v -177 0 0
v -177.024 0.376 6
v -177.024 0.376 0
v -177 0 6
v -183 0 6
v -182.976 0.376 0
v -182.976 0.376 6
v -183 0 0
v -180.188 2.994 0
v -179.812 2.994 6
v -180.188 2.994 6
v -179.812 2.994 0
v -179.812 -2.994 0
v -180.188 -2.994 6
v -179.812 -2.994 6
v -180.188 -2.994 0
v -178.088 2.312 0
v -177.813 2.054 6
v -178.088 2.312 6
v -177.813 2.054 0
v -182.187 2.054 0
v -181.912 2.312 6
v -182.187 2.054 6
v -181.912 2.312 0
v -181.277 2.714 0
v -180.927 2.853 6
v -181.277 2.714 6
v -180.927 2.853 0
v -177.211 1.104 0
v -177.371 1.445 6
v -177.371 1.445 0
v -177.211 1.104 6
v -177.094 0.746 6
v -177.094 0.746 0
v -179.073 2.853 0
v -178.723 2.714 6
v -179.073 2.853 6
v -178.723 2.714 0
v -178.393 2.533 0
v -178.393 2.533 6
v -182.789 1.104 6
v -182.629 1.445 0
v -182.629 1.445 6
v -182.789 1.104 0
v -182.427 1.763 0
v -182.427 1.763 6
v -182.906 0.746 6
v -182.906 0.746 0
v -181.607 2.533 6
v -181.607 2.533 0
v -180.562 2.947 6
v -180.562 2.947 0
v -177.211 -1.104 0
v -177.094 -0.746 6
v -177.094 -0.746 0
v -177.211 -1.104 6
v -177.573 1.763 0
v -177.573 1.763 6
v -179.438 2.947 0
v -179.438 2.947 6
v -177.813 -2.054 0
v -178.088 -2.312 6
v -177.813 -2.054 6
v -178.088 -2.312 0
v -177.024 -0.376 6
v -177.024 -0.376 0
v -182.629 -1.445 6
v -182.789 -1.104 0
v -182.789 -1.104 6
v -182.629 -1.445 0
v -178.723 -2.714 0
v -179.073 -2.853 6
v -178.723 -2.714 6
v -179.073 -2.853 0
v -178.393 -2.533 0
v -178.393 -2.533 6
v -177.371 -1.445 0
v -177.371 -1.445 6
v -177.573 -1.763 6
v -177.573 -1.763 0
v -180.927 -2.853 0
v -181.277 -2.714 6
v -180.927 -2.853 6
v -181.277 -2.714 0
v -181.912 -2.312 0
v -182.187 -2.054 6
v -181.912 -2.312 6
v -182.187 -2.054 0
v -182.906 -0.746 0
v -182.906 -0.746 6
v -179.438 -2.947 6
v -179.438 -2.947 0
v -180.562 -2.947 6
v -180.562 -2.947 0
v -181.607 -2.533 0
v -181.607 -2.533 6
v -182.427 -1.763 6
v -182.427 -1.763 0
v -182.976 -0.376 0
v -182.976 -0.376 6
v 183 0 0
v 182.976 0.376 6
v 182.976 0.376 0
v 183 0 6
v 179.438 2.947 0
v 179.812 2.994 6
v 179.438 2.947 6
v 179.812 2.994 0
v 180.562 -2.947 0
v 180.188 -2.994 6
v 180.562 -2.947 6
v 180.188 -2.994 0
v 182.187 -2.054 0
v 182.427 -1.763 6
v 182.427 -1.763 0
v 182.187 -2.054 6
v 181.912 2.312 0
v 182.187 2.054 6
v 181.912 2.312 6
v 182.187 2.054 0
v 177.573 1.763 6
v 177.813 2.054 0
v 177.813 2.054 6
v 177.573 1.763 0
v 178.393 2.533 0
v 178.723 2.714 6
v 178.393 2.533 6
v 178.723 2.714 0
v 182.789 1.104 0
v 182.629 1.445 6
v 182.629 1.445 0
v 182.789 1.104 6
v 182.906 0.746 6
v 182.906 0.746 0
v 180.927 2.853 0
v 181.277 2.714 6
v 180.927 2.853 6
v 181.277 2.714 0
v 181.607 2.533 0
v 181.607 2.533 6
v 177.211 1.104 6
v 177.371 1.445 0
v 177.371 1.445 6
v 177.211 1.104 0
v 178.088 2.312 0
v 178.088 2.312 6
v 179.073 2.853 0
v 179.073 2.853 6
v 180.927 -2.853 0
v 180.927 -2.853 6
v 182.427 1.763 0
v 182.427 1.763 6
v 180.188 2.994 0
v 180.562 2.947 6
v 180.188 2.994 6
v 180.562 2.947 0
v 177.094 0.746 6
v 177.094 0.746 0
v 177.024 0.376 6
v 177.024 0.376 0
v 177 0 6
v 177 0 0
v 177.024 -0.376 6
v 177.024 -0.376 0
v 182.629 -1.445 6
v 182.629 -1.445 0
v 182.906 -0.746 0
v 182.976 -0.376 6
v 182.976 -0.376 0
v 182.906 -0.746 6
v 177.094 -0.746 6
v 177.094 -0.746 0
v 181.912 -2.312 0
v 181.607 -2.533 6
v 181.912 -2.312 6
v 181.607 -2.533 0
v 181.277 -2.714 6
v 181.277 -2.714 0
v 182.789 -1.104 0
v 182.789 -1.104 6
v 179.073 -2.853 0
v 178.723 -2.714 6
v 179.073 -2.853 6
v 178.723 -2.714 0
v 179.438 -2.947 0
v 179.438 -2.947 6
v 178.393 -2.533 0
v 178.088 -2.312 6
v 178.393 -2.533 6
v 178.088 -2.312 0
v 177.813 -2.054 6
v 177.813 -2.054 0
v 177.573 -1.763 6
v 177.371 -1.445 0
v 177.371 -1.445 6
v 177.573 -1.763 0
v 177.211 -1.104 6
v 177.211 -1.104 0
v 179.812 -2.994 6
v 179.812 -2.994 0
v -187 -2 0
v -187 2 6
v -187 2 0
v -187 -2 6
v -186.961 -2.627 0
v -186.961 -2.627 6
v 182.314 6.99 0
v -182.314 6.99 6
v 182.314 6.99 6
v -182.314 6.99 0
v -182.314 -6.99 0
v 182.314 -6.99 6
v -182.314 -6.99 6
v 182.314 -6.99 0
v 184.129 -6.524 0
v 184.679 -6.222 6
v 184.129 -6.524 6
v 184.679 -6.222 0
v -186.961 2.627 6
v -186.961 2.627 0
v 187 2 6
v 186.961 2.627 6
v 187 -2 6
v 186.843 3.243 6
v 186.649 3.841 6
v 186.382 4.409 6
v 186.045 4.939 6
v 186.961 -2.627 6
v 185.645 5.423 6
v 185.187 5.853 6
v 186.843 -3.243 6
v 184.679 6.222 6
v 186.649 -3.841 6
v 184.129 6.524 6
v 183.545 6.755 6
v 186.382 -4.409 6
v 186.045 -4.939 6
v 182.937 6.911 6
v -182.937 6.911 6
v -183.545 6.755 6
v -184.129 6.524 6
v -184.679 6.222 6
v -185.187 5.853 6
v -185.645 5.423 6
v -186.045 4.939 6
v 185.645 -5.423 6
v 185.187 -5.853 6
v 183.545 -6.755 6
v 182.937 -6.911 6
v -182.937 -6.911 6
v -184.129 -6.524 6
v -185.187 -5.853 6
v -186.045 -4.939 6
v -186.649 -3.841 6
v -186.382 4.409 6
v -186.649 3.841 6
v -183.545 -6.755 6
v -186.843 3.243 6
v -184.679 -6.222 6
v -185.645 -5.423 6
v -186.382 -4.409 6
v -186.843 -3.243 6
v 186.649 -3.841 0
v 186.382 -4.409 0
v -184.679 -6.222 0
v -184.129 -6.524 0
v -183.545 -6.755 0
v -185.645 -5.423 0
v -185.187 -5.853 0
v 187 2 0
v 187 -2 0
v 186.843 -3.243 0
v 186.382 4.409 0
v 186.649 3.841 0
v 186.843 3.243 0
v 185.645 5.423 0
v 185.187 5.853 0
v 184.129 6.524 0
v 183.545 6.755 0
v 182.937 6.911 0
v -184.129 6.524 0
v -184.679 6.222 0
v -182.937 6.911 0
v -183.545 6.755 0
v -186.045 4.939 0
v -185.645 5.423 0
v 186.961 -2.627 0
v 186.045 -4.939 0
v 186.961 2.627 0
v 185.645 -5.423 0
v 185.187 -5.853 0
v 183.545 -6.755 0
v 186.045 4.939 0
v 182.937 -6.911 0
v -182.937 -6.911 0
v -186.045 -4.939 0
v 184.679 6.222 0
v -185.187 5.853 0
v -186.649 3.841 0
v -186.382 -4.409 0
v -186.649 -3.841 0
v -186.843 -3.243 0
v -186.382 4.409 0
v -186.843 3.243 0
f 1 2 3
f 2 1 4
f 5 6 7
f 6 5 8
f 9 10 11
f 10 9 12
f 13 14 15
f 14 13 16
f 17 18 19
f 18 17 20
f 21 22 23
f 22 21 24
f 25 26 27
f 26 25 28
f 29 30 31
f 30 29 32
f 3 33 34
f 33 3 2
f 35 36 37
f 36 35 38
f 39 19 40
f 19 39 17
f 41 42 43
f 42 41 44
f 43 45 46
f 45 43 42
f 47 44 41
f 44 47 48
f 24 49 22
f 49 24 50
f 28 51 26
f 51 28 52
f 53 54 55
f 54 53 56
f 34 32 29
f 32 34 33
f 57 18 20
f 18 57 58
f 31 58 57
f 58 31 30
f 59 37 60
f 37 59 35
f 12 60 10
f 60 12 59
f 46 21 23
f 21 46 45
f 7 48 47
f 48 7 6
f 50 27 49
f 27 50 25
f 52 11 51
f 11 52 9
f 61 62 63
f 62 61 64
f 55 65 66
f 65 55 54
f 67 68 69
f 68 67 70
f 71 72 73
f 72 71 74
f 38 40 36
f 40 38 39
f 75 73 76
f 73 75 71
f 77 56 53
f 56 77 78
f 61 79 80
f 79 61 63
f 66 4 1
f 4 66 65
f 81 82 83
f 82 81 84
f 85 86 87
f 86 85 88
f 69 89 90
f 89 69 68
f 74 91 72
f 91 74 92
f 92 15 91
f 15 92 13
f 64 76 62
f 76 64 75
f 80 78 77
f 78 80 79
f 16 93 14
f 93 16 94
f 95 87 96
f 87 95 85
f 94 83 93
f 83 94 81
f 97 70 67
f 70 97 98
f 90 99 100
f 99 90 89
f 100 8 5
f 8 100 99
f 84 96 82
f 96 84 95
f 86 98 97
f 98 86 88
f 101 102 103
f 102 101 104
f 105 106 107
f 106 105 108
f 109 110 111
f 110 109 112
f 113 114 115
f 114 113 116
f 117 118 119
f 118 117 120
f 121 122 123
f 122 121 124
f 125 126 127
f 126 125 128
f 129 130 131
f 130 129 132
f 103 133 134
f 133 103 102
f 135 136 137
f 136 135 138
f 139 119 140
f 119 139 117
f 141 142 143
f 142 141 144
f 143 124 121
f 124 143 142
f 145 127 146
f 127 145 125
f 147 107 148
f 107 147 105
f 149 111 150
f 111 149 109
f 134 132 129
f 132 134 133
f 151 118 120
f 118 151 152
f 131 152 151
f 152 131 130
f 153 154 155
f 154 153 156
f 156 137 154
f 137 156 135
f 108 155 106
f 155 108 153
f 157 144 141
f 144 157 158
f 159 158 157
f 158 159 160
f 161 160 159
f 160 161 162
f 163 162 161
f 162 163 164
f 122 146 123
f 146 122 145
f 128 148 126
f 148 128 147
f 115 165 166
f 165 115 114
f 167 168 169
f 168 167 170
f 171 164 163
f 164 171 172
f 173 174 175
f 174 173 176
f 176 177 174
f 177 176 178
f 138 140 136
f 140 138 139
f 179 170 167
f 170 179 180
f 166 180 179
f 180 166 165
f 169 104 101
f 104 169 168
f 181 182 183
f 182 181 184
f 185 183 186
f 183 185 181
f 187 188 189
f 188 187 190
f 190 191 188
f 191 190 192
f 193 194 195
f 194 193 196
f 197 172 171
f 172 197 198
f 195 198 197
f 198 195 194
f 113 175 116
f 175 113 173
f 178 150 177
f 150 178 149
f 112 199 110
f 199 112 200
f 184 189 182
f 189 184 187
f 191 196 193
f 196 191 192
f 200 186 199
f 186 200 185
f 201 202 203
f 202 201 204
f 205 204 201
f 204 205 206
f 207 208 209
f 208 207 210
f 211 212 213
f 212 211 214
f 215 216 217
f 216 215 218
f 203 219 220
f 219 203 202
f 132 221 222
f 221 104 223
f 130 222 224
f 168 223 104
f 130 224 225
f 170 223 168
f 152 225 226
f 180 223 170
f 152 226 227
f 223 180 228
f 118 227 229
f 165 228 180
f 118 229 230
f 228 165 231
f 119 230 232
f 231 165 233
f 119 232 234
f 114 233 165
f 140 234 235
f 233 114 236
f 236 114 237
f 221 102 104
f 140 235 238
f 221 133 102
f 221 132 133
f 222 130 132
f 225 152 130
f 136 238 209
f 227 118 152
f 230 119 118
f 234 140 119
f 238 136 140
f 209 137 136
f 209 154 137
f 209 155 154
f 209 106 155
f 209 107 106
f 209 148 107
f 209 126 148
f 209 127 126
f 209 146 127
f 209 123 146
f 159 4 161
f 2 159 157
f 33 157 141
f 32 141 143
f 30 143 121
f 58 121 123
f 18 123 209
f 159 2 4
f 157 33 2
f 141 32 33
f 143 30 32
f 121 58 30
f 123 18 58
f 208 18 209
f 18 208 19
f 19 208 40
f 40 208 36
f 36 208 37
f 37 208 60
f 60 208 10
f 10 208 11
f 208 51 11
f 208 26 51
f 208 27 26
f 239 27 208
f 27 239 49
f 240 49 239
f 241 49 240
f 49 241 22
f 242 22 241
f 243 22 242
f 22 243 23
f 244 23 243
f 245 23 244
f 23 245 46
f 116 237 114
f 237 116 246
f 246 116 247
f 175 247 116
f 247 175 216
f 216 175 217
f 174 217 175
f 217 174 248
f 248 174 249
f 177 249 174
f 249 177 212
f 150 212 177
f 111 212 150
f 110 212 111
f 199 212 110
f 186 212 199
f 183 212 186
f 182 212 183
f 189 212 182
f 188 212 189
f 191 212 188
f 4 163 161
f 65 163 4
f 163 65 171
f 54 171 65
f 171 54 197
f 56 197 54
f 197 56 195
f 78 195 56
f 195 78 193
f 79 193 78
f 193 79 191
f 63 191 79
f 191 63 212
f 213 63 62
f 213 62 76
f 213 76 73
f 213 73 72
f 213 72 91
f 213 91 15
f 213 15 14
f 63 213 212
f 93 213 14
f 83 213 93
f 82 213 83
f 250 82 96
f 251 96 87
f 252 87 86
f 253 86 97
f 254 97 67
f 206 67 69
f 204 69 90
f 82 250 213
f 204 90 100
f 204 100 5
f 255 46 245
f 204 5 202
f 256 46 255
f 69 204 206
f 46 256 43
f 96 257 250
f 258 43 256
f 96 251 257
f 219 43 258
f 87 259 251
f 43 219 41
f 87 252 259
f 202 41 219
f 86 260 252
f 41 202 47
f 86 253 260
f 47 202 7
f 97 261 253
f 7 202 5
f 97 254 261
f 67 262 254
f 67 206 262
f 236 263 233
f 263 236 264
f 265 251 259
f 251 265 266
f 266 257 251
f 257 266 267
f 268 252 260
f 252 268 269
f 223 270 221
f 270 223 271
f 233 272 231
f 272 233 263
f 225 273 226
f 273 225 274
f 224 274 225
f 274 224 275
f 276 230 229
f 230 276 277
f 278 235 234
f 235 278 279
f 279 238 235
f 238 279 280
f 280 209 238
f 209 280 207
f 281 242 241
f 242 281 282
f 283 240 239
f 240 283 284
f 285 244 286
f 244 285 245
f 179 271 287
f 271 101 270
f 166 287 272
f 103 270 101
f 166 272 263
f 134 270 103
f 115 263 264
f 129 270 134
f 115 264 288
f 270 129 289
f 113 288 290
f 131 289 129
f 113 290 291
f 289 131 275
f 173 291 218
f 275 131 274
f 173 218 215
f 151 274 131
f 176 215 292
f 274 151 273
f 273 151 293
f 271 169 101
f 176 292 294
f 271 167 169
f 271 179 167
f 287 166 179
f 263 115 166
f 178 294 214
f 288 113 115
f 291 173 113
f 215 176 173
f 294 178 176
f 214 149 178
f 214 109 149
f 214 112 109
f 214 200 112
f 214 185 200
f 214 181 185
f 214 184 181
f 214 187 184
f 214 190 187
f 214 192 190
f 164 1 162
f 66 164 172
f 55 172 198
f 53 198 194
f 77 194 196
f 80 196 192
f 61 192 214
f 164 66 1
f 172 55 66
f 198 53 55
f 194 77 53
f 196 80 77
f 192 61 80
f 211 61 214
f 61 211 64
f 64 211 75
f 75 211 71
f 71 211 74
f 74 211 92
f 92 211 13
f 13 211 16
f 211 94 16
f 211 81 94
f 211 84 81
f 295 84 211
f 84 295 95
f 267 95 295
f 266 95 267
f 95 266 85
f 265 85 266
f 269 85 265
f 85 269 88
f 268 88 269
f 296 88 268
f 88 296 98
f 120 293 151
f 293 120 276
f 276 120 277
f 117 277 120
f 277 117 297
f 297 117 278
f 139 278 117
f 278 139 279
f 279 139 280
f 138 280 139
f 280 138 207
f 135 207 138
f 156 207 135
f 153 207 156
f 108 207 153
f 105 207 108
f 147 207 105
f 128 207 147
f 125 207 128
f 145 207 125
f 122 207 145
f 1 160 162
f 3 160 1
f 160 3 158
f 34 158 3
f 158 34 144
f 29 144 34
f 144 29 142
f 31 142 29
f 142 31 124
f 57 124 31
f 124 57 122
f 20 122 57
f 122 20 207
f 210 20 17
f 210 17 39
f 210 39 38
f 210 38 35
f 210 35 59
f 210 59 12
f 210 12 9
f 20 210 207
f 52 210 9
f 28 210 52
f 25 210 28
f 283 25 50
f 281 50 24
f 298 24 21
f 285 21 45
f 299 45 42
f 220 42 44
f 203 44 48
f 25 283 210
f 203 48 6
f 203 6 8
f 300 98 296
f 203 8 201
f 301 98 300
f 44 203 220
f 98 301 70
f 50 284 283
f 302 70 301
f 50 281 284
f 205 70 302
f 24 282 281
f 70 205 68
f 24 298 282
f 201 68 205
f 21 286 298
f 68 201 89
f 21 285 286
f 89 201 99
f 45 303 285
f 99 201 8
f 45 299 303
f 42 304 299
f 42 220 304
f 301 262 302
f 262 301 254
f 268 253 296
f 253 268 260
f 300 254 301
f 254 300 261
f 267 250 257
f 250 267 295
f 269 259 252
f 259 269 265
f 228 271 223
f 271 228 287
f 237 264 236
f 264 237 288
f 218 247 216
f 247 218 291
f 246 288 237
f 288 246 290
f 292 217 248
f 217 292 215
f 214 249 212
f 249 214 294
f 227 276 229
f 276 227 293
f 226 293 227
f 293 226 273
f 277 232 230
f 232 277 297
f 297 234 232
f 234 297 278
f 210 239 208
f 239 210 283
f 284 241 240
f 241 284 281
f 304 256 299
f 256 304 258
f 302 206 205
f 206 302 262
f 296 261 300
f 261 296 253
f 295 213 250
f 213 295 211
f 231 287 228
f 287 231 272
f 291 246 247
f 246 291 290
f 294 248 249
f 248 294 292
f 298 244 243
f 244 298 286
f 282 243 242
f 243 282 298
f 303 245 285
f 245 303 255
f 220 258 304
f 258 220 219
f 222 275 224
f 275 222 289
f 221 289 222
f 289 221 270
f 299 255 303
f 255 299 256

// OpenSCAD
$fn = 50;


difference() {
	union() {
		hull() {
			translate(v = [-182.0000000000, 2.0000000000, 0]) {
				cylinder(h = 6, r = 5);
			}
			translate(v = [182.0000000000, 2.0000000000, 0]) {
				cylinder(h = 6, r = 5);
			}
			translate(v = [-182.0000000000, -2.0000000000, 0]) {
				cylinder(h = 6, r = 5);
			}
			translate(v = [182.0000000000, -2.0000000000, 0]) {
				cylinder(h = 6, r = 5);
			}
		}
	}
	union() {
		translate(v = [-180.0000000000, 0.0000000000, 0]) {
			cylinder(h = 6, r = 3.0000000000);
		}
		translate(v = [180.0000000000, 0.0000000000, 0]) {
			cylinder(h = 6, r = 3.0000000000);
		}
		translate(v = [-180.0000000000, 0.0000000000, 0]) {
			cylinder(h = 6, r = 1.5000000000);
		}
		translate(v = [180.0000000000, 0.0000000000, 0]) {
			cylinder(h = 6, r = 1.5000000000);
		}
		translate(v = [-180.0000000000, 0.0000000000, 0]) {
			cylinder(h = 6, r = 1.5000000000);
		}
		translate(v = [180.0000000000, 0.0000000000, 0]) {
			cylinder(h = 6, r = 1.5000000000);
		}
		translate(v = [-180.0000000000, 0.0000000000, 0]) {
			cylinder(h = 6, r = 1.5000000000);
		}
		translate(v = [180.0000000000, 0.0000000000, 0]) {
			cylinder(h = 6, r = 1.5000000000);
		}
	}
}
